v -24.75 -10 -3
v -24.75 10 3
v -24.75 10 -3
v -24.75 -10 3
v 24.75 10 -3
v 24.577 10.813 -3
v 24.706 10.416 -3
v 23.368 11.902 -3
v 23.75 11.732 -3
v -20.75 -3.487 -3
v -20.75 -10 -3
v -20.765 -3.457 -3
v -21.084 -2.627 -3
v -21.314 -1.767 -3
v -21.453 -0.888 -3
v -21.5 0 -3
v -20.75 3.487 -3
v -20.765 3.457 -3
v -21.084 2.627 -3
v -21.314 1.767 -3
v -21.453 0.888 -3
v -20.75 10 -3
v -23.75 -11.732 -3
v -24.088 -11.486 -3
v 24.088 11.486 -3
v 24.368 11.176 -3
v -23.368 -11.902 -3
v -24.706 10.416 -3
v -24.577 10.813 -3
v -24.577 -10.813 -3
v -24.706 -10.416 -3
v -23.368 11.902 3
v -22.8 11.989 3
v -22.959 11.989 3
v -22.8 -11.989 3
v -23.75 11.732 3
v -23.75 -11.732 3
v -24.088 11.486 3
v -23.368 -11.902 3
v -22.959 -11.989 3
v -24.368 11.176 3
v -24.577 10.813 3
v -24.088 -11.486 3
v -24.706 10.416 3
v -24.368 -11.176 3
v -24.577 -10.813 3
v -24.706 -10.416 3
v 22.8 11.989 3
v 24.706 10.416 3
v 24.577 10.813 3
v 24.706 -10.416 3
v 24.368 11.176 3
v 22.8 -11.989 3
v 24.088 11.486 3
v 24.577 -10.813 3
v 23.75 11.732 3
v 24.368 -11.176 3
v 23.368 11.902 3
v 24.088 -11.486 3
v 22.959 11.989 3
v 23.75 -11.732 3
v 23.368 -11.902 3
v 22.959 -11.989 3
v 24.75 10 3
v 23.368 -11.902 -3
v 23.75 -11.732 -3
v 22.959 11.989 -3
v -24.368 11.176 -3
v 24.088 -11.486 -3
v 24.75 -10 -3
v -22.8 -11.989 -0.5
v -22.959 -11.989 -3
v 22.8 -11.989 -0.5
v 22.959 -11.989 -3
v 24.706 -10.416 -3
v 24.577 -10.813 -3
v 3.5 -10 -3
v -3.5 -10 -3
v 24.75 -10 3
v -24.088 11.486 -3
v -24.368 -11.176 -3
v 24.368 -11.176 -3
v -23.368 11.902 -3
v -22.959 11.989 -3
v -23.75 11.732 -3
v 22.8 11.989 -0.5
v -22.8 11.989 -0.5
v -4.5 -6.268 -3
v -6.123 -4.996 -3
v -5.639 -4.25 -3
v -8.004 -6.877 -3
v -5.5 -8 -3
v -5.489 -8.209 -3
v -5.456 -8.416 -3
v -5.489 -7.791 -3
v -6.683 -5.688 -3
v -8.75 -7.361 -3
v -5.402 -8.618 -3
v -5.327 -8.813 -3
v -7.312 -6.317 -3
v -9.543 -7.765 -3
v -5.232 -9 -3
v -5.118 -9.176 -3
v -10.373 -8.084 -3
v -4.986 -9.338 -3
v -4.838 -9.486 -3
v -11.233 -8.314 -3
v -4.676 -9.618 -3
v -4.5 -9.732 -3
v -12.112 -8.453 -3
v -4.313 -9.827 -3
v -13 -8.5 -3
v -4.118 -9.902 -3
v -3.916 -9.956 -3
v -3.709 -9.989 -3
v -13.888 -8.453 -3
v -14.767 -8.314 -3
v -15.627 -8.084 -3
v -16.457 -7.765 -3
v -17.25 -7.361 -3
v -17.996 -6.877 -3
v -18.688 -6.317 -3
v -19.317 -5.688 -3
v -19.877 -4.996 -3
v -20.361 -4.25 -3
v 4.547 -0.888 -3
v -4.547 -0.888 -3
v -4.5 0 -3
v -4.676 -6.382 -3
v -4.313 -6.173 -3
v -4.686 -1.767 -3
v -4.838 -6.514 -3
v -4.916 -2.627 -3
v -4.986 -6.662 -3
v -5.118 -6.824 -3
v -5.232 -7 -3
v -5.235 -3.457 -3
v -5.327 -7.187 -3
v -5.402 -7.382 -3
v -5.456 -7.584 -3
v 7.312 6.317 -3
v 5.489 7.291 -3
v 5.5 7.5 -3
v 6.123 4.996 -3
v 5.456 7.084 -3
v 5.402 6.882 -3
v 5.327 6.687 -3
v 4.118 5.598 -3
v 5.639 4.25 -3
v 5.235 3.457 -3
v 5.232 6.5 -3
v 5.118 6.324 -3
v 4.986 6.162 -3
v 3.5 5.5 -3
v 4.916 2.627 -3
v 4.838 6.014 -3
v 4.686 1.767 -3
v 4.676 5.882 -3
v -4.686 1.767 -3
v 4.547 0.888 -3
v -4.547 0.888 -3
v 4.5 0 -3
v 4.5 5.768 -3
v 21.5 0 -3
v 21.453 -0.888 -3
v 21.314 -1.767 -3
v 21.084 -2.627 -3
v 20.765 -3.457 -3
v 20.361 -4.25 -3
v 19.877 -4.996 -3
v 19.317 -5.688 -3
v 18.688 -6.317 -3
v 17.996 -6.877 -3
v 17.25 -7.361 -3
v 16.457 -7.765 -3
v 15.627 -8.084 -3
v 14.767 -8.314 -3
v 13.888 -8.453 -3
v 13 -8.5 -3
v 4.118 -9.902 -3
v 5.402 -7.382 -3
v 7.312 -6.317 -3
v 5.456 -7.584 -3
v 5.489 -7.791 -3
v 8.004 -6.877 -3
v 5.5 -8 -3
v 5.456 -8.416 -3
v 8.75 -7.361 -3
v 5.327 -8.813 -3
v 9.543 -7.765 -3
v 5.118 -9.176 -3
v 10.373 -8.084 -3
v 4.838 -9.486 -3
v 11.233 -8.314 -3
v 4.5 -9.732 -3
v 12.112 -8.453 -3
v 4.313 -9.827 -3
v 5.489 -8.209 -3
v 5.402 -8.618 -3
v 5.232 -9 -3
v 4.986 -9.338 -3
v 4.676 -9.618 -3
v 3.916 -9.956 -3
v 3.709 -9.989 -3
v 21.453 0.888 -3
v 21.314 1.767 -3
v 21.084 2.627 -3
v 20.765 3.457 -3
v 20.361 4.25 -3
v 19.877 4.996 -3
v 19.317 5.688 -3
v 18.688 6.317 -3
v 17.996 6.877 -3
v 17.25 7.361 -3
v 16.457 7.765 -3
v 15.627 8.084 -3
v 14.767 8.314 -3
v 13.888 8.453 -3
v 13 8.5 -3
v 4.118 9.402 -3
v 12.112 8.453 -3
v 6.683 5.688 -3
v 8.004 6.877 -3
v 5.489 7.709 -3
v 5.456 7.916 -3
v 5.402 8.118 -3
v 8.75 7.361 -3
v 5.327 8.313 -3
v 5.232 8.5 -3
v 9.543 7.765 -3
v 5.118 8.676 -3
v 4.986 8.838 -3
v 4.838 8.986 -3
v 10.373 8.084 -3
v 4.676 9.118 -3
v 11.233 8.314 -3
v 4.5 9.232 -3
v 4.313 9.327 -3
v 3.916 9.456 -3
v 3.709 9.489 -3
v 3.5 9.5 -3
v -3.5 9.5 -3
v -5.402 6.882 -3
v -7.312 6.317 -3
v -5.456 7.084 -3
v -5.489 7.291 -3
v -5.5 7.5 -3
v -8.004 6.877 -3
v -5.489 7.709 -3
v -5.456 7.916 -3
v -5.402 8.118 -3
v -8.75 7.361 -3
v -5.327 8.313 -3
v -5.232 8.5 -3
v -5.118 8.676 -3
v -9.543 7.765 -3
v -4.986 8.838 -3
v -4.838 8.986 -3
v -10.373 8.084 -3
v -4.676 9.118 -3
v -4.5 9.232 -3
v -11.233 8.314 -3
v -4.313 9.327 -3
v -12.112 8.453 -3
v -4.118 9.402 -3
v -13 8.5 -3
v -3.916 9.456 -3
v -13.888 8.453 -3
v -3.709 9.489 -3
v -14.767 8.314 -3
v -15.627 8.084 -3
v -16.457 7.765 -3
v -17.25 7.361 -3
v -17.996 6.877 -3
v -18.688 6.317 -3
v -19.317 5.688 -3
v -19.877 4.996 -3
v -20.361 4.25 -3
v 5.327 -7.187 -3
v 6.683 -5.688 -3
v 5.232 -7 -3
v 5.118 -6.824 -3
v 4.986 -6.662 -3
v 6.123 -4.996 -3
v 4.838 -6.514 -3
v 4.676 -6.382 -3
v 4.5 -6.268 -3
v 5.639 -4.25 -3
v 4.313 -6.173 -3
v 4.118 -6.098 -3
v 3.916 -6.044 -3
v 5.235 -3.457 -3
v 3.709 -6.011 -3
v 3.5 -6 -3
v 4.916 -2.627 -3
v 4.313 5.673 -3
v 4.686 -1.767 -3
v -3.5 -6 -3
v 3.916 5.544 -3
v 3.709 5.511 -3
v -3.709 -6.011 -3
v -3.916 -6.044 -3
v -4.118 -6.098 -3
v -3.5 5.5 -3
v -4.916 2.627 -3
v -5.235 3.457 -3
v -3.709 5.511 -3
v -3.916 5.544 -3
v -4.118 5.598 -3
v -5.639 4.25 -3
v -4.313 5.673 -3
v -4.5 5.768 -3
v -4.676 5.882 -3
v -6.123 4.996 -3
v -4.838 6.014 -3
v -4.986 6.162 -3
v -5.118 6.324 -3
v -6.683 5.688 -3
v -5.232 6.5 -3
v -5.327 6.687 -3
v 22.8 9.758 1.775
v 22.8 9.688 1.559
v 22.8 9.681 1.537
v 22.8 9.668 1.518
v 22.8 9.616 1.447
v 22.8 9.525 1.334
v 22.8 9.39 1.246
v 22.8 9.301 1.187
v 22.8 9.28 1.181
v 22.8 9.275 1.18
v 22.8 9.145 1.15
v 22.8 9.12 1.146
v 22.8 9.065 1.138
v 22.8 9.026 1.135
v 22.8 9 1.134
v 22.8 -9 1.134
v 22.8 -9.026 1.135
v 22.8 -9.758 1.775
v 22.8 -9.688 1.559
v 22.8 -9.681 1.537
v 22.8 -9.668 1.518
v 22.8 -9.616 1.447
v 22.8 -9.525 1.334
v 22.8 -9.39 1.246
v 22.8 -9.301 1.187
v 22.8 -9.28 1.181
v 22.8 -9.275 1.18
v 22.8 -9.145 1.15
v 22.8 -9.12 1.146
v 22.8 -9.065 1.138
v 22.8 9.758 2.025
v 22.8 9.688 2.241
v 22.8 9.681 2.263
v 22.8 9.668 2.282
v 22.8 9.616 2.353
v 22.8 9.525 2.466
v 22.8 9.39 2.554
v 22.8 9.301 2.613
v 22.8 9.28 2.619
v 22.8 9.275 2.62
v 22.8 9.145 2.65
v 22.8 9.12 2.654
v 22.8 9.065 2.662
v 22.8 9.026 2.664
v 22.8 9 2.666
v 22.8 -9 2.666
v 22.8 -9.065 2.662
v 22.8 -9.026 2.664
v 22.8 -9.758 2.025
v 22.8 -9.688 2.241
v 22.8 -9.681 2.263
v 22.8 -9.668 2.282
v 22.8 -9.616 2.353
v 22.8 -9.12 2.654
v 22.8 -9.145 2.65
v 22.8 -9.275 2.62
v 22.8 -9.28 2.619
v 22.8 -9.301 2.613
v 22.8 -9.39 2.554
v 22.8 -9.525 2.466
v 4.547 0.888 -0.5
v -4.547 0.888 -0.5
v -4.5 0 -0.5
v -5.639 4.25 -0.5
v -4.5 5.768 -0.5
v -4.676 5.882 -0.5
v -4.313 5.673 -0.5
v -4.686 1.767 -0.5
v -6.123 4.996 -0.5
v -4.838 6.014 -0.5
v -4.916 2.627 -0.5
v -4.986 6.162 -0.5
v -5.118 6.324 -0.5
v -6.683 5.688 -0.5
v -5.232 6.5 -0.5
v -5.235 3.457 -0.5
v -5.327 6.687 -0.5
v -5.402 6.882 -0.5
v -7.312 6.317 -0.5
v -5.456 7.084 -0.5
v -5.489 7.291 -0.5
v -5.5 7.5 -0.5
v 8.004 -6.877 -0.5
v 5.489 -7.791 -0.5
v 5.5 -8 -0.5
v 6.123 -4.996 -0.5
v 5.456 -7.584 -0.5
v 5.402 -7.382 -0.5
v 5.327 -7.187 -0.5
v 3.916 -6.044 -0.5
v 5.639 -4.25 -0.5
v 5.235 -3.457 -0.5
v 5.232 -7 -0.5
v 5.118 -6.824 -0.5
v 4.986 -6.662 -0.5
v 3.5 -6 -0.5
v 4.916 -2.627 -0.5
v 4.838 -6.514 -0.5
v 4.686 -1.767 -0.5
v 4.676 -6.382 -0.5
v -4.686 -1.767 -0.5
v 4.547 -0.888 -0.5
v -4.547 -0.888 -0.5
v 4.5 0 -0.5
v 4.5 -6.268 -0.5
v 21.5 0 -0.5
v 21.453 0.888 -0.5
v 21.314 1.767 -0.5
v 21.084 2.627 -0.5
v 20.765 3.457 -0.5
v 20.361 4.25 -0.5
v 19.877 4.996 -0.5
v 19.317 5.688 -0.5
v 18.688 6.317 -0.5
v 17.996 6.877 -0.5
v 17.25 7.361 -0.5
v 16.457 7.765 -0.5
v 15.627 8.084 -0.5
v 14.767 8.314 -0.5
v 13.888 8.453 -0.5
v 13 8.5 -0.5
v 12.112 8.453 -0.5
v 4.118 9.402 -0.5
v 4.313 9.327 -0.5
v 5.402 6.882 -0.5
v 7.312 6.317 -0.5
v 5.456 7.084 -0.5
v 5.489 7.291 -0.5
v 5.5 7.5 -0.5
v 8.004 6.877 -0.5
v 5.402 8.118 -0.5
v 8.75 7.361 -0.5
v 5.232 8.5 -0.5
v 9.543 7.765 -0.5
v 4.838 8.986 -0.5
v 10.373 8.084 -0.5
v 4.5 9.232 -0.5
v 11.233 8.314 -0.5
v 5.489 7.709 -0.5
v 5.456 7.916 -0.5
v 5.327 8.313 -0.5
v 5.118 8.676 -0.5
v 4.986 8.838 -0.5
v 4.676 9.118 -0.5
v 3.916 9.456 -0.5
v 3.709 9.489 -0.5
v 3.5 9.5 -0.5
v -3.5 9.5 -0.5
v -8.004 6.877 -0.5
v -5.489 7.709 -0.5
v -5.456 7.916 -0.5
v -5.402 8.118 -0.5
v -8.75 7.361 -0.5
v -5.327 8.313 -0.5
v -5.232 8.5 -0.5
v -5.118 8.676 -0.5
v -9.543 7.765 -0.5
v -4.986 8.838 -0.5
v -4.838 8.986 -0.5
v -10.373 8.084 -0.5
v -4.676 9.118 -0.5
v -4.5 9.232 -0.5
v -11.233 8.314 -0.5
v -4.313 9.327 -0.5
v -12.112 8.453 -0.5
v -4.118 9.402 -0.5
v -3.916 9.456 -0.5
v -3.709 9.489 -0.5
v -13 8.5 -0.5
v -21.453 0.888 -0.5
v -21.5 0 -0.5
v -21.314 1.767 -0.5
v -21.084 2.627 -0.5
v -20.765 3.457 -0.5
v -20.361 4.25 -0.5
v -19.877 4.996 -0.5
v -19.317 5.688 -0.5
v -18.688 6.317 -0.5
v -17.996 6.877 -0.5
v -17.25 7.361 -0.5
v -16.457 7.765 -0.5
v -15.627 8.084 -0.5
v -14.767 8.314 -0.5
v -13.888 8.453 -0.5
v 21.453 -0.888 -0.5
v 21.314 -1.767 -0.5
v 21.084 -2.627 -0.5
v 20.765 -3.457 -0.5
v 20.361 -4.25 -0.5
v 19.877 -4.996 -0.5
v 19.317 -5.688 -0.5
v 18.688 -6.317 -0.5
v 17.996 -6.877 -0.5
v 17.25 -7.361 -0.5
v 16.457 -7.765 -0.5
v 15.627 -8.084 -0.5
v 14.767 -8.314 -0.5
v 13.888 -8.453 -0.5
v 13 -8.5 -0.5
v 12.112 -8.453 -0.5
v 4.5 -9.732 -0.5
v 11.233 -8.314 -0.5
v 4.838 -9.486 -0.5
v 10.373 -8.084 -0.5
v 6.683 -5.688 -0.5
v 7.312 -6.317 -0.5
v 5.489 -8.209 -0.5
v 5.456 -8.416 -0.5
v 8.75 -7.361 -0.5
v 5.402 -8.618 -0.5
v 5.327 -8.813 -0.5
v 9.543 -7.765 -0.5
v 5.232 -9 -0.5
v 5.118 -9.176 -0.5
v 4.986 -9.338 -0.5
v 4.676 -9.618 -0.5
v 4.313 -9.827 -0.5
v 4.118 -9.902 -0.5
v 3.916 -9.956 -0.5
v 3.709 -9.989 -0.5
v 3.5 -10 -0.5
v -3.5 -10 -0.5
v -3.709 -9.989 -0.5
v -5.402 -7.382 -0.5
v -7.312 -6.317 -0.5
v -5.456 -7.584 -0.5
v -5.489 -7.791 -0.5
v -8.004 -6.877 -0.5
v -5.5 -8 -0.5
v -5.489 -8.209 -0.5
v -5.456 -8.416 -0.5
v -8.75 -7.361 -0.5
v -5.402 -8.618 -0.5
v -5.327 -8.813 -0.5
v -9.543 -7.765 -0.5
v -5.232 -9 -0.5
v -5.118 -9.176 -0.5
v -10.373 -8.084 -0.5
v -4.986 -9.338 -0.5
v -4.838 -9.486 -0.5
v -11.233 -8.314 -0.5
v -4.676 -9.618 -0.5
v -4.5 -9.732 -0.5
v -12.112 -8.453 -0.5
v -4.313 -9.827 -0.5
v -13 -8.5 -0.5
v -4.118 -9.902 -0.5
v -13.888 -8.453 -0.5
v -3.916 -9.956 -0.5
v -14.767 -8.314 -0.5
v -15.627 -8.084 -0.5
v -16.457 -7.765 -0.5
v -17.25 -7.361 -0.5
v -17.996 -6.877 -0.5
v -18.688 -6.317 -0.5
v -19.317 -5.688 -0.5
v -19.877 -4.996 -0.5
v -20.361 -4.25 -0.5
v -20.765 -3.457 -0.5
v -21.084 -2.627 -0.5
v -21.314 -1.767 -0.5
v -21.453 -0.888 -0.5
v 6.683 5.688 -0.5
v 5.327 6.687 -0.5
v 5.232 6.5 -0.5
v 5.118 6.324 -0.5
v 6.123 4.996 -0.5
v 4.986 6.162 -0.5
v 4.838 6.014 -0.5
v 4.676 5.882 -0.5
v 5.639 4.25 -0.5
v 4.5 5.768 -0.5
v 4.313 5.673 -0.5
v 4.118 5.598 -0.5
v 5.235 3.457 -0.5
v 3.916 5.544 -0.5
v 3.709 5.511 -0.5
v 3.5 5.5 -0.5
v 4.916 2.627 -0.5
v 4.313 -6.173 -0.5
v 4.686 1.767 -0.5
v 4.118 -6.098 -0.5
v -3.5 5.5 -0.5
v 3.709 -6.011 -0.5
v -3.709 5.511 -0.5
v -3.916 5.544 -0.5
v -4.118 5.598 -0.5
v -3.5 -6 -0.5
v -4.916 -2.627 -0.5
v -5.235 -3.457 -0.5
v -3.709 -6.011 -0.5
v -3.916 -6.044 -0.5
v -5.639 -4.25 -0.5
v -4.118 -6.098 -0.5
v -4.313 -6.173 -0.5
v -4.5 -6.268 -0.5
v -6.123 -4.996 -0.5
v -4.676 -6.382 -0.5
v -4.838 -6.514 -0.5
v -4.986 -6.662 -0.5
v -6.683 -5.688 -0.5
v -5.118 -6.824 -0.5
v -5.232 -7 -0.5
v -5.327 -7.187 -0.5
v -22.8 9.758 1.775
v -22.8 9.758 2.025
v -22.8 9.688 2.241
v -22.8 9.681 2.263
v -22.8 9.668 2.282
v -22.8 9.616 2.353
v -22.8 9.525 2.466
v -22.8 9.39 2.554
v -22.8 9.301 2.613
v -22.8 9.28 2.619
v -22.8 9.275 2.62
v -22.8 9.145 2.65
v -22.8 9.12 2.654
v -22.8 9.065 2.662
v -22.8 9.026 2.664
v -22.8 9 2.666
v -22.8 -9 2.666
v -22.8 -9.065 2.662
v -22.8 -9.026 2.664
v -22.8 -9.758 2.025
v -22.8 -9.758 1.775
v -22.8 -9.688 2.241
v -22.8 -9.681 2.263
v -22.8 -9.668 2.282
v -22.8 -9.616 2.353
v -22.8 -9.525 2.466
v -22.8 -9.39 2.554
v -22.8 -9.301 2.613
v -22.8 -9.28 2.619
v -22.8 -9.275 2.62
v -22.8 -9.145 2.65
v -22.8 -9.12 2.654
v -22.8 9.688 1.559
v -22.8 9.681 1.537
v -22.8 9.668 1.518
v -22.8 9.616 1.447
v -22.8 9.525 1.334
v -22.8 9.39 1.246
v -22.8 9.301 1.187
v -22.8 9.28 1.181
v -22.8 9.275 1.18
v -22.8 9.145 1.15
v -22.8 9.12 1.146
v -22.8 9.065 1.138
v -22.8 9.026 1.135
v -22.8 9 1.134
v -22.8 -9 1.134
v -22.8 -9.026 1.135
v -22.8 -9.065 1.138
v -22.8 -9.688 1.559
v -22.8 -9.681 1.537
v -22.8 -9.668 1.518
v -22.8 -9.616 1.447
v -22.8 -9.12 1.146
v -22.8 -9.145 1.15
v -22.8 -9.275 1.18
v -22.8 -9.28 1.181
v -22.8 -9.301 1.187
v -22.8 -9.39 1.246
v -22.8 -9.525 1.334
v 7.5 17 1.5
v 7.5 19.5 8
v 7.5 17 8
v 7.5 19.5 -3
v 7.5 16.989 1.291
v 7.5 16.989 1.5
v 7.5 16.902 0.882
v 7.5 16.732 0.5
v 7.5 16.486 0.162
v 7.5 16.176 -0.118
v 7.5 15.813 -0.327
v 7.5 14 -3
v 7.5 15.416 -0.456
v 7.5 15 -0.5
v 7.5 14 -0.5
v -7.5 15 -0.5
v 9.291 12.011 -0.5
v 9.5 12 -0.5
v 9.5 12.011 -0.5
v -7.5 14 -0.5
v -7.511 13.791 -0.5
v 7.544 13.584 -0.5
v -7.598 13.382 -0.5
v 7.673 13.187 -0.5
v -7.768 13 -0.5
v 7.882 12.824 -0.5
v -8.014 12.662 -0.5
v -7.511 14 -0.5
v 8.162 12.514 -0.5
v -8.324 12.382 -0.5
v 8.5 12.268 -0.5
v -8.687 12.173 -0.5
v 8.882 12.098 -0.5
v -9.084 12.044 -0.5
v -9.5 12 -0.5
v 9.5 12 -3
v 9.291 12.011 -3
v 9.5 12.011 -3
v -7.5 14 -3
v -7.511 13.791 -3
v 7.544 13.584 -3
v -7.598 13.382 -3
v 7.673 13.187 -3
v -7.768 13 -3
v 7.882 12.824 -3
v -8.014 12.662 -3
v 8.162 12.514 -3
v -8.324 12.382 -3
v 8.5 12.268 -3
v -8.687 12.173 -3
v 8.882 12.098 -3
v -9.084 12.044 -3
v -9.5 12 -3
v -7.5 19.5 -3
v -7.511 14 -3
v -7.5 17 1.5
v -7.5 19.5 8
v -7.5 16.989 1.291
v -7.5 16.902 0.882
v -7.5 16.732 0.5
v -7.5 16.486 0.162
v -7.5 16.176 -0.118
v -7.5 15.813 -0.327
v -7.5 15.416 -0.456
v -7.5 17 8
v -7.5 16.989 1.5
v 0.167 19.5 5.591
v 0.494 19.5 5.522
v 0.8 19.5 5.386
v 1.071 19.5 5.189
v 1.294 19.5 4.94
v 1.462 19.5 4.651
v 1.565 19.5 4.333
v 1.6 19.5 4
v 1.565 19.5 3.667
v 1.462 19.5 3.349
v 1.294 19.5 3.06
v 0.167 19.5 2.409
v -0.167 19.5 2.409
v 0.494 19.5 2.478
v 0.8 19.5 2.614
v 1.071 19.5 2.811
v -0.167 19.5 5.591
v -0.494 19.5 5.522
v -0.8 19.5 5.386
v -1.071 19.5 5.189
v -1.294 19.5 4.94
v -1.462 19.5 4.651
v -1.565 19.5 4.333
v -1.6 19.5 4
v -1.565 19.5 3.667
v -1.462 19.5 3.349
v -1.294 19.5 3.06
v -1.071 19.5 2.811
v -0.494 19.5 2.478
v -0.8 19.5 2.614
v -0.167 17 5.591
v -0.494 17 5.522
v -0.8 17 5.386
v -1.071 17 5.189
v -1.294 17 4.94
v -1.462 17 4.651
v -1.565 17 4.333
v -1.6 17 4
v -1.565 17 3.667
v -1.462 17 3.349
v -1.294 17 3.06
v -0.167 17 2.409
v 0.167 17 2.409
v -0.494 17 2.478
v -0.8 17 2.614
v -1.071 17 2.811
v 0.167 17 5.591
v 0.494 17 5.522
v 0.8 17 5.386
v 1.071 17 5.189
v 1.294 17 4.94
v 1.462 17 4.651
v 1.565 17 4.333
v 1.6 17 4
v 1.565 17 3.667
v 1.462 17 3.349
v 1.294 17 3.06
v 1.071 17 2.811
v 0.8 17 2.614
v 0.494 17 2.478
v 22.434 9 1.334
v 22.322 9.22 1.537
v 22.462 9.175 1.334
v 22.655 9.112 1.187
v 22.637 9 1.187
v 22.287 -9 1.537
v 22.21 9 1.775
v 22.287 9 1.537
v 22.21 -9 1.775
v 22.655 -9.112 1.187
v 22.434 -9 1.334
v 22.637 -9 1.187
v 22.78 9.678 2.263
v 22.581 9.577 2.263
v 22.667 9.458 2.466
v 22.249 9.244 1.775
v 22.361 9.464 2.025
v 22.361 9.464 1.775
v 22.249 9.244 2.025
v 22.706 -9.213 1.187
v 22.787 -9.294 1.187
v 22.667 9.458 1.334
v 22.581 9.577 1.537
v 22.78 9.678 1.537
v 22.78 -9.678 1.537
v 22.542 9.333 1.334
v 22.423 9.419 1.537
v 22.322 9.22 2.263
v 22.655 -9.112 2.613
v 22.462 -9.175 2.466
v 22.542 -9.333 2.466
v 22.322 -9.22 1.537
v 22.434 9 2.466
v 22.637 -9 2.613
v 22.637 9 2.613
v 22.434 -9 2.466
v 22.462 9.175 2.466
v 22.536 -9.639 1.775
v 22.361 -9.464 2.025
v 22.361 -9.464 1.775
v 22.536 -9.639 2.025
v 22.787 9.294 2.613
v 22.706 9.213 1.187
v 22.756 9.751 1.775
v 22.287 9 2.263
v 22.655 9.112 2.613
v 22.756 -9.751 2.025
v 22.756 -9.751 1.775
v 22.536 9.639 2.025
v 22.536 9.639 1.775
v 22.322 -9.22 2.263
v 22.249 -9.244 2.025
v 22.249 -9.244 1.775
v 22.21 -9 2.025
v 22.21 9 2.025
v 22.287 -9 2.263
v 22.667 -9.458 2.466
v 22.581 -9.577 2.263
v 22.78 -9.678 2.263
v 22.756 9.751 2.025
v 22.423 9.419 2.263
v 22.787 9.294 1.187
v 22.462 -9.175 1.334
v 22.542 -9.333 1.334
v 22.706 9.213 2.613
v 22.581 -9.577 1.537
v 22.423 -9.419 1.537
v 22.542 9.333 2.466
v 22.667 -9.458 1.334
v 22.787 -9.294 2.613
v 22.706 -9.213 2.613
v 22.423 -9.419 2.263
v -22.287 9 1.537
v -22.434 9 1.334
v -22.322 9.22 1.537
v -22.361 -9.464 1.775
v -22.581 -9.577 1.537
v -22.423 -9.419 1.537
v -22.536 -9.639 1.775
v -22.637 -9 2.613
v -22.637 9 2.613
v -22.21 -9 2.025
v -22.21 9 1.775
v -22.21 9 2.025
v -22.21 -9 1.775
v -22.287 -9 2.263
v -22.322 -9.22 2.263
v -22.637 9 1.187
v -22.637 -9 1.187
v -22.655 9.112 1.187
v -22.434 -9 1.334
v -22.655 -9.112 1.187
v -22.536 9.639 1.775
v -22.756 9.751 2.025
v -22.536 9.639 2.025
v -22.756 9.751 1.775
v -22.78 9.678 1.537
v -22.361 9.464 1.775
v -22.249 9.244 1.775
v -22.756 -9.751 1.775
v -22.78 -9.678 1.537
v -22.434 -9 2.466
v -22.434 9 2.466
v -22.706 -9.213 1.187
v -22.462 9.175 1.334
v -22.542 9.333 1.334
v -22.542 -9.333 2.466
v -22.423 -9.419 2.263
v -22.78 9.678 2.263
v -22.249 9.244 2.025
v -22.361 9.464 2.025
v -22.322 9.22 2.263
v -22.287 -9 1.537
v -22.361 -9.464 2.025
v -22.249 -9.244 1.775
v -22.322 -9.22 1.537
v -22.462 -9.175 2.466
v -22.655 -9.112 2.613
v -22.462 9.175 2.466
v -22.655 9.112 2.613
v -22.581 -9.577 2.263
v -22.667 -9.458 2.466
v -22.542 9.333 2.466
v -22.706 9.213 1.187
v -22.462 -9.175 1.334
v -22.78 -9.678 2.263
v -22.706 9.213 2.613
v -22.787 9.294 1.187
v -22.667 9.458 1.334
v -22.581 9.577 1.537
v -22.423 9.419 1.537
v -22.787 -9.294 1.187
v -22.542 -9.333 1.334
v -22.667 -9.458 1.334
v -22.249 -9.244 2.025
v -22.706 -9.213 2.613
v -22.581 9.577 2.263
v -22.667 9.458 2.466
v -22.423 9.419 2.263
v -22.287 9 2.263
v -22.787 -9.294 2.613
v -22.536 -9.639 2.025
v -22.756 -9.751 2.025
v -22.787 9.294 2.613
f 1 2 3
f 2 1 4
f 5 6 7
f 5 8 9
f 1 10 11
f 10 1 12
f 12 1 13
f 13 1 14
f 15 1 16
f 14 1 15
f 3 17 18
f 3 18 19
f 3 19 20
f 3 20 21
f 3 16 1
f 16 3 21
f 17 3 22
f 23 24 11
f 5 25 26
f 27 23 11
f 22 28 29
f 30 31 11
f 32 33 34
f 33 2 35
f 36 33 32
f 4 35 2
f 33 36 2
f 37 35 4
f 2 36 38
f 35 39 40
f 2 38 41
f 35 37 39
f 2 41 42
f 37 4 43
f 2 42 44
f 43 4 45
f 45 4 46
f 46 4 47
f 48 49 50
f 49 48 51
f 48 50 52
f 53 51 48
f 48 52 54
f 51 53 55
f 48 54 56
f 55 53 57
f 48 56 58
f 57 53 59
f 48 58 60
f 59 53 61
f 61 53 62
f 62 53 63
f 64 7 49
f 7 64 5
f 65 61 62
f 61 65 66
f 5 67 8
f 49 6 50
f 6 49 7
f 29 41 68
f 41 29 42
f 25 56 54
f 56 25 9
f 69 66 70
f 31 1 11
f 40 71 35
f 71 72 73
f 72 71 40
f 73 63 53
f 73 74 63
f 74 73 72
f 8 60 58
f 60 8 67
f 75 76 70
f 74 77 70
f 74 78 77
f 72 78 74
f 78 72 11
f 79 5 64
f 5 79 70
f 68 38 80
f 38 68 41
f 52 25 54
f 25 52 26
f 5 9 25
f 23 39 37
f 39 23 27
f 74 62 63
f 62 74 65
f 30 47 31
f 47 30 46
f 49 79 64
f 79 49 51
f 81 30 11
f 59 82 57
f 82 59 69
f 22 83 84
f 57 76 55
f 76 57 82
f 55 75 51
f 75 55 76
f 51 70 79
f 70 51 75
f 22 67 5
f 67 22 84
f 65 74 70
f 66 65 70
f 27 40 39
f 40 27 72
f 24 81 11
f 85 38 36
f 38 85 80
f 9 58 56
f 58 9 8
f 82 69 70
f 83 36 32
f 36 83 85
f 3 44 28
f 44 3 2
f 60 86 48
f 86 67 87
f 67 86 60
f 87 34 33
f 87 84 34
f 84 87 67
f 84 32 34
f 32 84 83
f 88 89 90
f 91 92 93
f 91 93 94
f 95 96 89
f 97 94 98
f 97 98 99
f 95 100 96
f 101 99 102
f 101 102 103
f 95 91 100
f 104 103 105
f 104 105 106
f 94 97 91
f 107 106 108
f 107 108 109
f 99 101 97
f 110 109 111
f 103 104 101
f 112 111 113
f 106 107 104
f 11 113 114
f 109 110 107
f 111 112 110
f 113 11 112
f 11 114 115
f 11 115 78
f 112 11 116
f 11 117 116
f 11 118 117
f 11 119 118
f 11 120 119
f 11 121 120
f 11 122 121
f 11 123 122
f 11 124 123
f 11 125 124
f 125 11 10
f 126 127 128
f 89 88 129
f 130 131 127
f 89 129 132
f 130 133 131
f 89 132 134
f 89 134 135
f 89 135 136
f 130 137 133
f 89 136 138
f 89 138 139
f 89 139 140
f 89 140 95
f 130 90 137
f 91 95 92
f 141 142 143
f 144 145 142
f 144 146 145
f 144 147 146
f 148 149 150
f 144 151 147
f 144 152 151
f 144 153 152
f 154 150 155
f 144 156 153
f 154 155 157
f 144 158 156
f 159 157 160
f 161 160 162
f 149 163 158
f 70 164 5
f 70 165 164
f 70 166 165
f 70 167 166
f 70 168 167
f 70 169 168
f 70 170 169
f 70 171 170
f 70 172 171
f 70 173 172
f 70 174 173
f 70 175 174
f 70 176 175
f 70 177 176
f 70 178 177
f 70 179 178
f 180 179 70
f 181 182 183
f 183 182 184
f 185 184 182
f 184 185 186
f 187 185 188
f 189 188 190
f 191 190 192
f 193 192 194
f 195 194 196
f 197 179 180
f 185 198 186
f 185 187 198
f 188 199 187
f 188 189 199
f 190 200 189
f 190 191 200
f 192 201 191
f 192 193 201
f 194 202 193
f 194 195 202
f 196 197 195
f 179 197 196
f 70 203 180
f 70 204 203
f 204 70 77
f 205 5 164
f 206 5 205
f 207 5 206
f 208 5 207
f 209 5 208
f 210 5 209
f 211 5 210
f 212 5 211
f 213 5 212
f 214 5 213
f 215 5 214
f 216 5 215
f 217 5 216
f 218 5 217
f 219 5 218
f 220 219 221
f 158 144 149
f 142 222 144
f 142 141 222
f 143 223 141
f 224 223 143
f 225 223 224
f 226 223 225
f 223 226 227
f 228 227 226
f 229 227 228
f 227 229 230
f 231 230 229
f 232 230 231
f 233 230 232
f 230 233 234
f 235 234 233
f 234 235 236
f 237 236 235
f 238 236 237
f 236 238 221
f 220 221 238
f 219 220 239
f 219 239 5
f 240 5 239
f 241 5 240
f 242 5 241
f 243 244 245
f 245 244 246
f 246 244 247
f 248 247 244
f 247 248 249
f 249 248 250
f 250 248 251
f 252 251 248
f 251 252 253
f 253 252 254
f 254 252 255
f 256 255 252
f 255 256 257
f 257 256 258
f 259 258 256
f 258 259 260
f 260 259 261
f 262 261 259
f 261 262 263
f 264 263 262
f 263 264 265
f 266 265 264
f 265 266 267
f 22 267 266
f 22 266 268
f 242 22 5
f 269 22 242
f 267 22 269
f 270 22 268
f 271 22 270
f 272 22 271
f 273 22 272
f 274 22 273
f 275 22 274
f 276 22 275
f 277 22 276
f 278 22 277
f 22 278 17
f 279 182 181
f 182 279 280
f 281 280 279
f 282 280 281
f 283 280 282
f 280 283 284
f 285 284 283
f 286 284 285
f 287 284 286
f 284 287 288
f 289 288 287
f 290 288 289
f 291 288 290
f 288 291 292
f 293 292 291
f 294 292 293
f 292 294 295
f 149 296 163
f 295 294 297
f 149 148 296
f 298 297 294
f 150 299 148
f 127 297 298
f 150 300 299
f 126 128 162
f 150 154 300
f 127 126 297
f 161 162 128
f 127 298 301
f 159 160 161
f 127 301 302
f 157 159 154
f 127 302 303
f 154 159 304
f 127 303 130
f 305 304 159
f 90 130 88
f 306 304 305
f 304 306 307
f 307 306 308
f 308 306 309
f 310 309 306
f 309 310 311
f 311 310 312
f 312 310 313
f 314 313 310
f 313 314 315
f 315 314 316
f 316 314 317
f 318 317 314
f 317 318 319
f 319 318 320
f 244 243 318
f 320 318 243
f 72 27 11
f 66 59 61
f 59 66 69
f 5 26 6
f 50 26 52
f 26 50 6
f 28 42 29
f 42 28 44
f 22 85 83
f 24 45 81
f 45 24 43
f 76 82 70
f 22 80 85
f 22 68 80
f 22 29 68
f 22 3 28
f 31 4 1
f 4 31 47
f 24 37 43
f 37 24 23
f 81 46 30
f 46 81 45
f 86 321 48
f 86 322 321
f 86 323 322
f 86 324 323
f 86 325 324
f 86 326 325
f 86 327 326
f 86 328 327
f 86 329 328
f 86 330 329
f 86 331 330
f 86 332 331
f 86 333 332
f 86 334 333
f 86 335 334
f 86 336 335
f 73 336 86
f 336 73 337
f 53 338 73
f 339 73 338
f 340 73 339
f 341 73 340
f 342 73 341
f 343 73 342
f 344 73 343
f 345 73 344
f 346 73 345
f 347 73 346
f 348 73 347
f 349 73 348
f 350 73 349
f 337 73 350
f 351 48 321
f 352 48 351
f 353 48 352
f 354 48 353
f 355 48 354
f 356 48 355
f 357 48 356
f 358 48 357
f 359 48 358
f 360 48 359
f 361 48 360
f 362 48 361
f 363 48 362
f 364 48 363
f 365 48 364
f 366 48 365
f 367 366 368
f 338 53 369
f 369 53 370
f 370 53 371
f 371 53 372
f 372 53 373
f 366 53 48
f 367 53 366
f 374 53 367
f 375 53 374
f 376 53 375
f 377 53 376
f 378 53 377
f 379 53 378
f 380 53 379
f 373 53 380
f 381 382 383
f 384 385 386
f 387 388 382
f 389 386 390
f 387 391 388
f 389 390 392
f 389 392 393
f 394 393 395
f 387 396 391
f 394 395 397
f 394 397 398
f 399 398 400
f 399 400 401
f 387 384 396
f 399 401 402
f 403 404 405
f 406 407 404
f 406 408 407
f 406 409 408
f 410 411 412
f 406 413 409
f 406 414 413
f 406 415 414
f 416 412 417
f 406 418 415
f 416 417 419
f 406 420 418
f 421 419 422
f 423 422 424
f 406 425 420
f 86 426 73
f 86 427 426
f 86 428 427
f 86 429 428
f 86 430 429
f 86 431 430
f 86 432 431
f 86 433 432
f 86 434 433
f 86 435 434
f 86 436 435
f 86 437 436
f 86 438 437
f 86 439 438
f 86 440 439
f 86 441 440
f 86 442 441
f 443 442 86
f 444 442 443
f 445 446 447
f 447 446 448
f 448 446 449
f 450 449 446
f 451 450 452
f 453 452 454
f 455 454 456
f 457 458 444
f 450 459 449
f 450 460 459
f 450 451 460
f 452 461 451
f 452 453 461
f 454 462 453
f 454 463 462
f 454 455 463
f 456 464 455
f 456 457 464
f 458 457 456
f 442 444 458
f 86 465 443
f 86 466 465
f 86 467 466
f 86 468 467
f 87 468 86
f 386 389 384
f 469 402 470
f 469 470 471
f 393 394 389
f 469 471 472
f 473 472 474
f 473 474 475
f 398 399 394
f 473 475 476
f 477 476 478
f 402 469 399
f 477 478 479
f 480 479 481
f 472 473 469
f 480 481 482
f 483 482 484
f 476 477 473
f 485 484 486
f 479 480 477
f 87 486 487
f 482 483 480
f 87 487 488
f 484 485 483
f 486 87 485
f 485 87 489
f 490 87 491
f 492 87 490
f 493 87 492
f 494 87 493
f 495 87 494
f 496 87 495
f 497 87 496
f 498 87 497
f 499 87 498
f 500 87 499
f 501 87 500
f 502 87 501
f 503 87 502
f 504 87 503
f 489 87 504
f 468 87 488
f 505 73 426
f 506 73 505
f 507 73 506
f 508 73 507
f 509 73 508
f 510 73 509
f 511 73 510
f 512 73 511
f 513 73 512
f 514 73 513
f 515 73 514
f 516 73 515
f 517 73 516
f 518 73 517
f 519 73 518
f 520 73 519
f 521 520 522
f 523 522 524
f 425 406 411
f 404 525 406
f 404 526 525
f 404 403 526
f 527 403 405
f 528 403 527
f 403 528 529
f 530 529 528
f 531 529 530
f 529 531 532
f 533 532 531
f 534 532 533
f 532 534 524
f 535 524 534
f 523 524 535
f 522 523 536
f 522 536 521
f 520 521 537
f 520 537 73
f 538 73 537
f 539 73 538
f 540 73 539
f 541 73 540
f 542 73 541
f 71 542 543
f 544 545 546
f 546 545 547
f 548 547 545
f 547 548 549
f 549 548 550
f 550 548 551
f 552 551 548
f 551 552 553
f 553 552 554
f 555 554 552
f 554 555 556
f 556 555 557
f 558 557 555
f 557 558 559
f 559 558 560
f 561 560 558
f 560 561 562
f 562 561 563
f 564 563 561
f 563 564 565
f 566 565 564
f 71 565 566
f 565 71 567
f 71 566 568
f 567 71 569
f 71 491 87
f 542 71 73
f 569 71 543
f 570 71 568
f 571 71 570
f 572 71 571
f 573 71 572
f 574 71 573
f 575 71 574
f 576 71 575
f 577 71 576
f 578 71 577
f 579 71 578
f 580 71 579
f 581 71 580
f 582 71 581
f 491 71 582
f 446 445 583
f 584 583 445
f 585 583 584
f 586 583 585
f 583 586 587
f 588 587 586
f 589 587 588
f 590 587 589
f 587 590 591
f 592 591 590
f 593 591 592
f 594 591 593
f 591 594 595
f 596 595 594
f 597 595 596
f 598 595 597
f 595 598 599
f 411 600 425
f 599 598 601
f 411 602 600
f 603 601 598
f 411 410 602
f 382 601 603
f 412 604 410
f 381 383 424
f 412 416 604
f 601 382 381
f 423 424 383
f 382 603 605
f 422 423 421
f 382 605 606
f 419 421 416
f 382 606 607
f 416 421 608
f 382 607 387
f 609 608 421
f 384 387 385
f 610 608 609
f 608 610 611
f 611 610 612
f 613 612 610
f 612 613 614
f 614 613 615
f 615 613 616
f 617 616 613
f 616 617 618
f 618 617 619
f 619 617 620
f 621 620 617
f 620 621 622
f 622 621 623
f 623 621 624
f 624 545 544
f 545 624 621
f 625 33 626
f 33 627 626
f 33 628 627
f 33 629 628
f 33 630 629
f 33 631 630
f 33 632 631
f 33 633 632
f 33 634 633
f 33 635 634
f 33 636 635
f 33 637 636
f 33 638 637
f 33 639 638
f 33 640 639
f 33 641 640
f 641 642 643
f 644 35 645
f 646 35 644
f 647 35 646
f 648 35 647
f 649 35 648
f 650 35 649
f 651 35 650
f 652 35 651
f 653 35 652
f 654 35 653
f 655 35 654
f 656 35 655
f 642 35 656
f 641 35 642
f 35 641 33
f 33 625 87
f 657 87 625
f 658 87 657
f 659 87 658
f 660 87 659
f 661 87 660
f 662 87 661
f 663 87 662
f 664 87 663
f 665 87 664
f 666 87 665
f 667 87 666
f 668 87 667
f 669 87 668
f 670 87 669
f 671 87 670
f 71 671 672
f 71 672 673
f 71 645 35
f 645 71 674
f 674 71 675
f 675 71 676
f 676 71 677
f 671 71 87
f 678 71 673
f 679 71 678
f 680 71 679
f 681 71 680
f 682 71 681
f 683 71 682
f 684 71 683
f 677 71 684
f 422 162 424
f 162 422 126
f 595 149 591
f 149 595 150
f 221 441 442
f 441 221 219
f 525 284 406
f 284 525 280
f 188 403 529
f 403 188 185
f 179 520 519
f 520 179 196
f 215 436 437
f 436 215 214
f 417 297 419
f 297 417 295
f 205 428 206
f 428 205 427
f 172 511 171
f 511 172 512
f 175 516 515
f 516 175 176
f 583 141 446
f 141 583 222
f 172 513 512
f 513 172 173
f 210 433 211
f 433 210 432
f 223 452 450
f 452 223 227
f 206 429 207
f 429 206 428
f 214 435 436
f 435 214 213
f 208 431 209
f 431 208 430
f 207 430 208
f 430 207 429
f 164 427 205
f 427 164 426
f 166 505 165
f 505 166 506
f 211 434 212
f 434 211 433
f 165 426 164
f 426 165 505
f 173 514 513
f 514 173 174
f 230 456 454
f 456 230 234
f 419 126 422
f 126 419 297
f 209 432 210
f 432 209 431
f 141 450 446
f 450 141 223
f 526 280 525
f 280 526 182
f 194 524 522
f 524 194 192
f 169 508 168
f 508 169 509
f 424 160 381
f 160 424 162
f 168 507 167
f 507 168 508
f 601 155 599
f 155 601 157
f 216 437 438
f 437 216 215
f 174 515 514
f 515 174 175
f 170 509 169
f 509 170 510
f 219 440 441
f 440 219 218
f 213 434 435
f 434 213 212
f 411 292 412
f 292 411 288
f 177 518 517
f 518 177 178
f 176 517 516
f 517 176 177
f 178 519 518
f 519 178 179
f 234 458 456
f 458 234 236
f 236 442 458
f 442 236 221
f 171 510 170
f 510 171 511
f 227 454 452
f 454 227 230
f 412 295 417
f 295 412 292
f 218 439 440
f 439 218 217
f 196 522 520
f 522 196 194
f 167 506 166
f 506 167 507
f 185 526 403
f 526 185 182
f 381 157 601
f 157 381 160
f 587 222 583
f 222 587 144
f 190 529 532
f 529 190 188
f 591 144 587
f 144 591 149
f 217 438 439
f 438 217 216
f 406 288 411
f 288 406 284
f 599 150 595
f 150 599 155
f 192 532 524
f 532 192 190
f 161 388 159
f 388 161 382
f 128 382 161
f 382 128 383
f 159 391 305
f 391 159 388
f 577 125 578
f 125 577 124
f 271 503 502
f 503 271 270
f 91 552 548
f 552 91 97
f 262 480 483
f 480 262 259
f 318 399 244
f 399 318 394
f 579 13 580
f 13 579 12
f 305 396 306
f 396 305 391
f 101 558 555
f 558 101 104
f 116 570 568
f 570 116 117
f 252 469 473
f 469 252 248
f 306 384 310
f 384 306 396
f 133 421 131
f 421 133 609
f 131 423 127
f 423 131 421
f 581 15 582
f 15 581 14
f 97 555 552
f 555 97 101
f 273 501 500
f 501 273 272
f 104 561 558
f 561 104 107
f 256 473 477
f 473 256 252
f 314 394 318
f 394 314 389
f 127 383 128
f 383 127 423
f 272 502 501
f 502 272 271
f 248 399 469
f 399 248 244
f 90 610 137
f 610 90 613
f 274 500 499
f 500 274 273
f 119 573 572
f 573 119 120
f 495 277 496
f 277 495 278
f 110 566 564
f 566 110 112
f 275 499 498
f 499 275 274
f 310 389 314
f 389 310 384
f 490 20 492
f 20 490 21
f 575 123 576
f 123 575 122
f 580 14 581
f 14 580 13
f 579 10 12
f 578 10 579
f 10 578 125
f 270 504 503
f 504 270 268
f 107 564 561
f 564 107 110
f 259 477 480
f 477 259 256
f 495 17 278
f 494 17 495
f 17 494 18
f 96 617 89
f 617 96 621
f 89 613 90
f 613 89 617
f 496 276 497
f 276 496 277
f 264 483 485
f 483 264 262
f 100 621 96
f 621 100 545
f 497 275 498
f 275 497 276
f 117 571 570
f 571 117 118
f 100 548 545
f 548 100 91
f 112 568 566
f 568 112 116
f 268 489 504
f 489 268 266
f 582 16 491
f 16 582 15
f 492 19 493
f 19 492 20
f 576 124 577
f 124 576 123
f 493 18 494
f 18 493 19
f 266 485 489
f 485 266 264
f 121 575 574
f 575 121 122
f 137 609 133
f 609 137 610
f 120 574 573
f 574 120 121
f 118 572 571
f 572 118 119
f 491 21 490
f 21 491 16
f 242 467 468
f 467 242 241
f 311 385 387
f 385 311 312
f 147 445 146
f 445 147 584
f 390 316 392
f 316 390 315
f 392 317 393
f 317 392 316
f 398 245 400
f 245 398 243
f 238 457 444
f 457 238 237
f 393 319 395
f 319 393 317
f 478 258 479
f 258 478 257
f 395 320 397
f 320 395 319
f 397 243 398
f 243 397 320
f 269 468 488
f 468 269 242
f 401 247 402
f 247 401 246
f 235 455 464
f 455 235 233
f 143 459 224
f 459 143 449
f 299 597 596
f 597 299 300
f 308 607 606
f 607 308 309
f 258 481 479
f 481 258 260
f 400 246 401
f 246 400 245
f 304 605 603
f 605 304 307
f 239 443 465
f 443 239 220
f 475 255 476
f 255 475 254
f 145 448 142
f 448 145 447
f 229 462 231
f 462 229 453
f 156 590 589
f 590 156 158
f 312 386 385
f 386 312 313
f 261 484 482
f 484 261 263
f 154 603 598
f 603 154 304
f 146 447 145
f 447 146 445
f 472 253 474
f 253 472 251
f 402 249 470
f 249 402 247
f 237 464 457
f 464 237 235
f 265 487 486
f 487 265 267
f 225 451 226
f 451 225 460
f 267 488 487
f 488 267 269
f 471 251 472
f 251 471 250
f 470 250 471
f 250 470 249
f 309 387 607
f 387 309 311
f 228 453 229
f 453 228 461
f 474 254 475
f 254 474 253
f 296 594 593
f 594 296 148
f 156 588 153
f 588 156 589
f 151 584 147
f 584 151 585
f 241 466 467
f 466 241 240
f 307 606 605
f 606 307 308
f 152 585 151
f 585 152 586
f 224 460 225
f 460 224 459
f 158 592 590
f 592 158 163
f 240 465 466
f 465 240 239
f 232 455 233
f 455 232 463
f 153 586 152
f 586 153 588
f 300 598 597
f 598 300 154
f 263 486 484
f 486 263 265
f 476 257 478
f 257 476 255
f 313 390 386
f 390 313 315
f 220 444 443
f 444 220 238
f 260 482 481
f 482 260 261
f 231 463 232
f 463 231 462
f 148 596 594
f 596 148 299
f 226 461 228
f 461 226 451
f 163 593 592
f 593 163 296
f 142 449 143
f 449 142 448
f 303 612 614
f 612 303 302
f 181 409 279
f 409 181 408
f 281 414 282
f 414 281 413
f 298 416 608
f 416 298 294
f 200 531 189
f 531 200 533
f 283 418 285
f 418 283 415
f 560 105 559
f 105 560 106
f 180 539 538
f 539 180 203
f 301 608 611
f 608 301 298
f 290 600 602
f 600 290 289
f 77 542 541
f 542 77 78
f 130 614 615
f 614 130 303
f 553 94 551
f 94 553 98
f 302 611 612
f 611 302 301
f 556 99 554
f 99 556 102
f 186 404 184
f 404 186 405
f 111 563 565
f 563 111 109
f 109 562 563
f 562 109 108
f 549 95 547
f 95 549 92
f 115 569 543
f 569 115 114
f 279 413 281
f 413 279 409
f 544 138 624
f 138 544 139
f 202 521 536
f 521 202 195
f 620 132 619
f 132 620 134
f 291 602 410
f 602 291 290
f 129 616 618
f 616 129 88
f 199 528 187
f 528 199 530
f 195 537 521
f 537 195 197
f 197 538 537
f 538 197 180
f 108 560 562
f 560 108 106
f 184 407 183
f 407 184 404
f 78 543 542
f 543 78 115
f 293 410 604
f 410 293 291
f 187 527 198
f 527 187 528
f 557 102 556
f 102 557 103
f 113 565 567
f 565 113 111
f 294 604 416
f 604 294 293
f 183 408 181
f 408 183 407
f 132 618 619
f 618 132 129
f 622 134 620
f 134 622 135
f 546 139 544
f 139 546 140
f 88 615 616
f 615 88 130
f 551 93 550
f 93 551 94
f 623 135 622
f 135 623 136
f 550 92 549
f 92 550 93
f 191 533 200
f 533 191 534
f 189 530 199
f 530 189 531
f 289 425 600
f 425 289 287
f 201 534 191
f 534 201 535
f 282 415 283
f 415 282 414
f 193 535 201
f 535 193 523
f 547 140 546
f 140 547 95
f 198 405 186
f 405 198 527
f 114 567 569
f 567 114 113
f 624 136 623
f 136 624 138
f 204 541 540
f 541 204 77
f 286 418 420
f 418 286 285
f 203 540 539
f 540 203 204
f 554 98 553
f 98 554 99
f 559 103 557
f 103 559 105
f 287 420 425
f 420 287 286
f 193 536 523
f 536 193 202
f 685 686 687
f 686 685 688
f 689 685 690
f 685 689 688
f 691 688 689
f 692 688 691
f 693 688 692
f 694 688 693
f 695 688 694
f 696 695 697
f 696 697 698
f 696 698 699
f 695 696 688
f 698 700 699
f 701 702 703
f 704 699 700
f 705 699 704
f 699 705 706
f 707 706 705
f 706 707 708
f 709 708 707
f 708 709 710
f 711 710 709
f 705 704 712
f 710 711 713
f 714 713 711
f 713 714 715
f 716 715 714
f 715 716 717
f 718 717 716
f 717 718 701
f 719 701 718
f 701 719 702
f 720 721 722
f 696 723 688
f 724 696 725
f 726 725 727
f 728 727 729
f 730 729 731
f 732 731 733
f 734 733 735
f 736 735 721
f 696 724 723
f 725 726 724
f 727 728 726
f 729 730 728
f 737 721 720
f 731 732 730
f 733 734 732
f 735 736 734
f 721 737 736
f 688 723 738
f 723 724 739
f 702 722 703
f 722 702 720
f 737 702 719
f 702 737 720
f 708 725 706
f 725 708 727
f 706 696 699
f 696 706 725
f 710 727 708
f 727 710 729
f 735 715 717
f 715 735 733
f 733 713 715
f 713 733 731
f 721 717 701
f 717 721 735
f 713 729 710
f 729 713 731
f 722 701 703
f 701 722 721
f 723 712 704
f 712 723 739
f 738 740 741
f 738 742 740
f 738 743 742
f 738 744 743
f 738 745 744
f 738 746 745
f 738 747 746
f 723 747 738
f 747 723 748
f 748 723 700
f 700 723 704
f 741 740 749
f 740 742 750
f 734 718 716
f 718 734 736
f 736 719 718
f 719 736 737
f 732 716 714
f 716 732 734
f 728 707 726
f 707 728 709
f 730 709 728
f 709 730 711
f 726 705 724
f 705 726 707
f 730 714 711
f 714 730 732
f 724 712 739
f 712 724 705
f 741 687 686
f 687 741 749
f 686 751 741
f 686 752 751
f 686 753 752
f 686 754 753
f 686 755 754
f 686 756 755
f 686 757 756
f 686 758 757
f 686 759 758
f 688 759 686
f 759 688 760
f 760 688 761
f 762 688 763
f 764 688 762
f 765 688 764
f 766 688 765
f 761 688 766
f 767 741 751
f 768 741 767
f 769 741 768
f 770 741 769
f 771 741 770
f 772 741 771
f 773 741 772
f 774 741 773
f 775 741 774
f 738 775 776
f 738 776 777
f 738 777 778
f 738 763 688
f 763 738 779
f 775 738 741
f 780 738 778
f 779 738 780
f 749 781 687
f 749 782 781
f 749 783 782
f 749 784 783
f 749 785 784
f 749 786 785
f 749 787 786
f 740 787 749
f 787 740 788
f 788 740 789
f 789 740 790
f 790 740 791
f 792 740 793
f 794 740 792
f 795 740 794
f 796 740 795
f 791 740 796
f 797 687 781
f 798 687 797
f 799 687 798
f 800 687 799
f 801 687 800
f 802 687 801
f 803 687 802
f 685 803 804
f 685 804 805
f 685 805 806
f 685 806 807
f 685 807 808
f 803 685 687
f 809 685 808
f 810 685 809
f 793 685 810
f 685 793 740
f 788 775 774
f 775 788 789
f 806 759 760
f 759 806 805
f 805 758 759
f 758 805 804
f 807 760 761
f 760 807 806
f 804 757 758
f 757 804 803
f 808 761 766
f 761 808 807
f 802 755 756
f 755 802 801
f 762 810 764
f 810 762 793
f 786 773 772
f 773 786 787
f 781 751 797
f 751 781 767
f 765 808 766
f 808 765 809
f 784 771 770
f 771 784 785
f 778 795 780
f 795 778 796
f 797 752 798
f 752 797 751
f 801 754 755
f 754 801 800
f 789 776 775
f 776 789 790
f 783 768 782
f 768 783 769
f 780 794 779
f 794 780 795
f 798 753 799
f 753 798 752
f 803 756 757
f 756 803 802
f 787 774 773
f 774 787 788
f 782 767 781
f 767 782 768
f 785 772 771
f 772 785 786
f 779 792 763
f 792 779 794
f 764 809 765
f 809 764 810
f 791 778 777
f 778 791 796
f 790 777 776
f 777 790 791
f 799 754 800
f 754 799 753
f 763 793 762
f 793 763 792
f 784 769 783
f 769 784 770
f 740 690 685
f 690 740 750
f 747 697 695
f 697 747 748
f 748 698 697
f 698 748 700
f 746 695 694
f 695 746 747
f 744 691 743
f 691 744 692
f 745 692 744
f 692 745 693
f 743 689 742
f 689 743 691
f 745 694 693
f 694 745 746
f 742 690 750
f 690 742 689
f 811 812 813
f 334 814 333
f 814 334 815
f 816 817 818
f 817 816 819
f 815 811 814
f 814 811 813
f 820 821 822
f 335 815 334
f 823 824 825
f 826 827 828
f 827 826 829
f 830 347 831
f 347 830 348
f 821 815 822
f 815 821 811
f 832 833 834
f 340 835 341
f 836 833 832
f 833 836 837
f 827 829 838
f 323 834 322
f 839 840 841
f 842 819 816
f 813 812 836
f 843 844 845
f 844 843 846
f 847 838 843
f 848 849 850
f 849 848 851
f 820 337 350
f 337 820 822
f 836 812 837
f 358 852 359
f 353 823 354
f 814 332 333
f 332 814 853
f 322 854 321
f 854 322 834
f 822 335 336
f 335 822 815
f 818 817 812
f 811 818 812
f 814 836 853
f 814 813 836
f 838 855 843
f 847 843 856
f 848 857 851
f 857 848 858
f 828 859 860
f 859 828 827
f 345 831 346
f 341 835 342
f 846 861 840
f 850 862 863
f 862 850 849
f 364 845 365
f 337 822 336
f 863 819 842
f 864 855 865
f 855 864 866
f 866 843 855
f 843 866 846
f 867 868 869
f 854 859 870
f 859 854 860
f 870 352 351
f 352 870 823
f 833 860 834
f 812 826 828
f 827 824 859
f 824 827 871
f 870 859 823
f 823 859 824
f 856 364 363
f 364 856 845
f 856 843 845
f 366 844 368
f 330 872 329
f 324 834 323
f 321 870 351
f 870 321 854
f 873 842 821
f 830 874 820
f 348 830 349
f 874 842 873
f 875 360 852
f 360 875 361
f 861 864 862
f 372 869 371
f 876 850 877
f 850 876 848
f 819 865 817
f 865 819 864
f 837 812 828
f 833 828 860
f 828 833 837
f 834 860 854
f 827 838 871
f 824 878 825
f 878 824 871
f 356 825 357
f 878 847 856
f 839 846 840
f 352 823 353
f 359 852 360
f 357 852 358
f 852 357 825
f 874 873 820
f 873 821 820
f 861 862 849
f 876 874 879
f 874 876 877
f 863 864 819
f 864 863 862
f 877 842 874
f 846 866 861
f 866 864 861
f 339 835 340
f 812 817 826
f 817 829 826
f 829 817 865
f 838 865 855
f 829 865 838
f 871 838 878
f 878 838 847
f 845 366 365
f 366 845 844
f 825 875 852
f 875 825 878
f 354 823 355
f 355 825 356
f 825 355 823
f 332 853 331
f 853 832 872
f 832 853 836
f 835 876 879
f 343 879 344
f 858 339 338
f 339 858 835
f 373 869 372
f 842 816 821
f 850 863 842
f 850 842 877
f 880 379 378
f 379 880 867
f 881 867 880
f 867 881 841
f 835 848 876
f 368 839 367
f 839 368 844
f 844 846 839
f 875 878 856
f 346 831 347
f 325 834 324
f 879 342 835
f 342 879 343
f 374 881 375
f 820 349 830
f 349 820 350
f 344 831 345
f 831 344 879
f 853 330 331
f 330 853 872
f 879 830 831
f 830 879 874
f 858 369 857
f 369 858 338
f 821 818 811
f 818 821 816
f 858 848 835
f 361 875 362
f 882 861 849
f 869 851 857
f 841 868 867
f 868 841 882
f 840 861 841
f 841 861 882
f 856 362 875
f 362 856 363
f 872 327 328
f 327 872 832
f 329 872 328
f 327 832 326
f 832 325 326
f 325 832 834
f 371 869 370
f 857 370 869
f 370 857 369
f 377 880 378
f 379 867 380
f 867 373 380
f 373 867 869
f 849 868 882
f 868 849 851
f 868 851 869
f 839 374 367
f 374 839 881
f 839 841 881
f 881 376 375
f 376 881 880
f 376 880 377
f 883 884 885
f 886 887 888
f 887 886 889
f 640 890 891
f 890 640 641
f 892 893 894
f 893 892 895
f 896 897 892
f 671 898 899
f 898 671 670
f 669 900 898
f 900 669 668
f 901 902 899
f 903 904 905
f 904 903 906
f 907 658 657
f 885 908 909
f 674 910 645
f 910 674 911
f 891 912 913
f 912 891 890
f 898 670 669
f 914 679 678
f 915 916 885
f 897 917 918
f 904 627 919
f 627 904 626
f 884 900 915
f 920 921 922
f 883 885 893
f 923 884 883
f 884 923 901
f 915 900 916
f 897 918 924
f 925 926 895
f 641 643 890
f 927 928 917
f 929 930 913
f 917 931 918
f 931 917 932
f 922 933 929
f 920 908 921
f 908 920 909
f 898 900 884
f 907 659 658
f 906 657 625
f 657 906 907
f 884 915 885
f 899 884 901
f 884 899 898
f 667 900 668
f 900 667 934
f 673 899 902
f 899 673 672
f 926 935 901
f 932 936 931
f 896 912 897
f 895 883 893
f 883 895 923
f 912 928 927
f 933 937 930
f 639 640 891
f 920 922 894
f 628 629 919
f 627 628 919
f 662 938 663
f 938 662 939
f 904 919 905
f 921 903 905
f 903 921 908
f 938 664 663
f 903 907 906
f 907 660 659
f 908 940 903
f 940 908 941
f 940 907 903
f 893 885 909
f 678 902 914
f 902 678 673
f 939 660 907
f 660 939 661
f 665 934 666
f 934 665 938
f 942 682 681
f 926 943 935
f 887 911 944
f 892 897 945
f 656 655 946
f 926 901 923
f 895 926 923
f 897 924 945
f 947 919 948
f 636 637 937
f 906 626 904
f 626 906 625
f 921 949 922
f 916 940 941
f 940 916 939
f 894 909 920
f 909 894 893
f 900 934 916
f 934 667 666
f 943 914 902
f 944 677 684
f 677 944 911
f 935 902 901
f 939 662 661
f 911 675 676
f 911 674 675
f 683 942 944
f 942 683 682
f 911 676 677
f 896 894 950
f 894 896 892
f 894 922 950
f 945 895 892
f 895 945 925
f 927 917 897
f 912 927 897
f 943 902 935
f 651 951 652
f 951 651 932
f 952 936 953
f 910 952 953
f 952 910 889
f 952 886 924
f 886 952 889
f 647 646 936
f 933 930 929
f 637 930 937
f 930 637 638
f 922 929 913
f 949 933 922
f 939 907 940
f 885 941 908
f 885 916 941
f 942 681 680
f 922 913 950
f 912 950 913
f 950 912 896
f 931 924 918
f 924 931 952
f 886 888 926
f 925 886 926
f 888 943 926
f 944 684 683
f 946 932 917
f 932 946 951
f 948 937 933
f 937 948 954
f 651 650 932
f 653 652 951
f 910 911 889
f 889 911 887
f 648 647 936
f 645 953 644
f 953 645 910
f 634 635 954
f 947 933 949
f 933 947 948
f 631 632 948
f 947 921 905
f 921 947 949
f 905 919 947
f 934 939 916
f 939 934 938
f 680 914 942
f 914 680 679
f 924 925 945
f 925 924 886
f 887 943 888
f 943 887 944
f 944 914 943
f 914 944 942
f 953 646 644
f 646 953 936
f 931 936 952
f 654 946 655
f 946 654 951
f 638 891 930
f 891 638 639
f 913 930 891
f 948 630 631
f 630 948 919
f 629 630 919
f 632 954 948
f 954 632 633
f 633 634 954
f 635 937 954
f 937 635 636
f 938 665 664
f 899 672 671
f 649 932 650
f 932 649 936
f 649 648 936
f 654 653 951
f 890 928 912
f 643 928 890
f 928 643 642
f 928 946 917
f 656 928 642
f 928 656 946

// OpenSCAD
difference()
{
minkowski($fn=30){
cube([45.5,20,6],center=true);
cylinder(d=4,h=0.000001);
}
translate([0,0,2])cube([45.6,25,5],center=true);
    
translate([13,0,-5])cylinder(d=17,h=5,$fn=60);
translate([-13,0,-5])cylinder(d=17,h=5,$fn=60);
hull(){
translate([-3.5,7.5,-5])cylinder(d=4,h=5,$fn=60);
translate([3.5,7.5,-5])cylinder(d=4,h=5,$fn=60);
}
hull(){
translate([-3.5,-8,-5])cylinder(d=4,h=5,$fn=60);
translate([3.5,-8,-5])cylinder(d=4,h=5,$fn=60);
}
}
hull(){
translate([23,9,1.9])sphere(0.8,$fn=20);
translate([23,-9,1.9])sphere(0.8,$fn=20);
}
hull(){
translate([-23,9,1.9])sphere(0.8,$fn=20);
translate([-23,-9,1.9])sphere(0.8,$fn=20);
}
translate([9.5,14,-3])rotate([0,0,180])
scale([1,1,1.25])acuerdo();
translate([-9.5,14,-3])rotate([0,0,-90])
scale([1,1,1.25])acuerdo();

translate([-7.5,12,-3])cube([15,7,2.5]);
difference(){
translate([-7.5,17,-3])cube([15,2.5,11]);
translate([0,0,4])rotate([-90,0,0])
cylinder(d=3.2,h=20,$fn=30);
}
translate([-7.5,15,1.5])scale([7.5,1,1])
rotate([0,90,0])acuerdo();

module acuerdo(){
difference(){
cube(2);
cylinder(d=4,h=2,$fn=30);
}
}
